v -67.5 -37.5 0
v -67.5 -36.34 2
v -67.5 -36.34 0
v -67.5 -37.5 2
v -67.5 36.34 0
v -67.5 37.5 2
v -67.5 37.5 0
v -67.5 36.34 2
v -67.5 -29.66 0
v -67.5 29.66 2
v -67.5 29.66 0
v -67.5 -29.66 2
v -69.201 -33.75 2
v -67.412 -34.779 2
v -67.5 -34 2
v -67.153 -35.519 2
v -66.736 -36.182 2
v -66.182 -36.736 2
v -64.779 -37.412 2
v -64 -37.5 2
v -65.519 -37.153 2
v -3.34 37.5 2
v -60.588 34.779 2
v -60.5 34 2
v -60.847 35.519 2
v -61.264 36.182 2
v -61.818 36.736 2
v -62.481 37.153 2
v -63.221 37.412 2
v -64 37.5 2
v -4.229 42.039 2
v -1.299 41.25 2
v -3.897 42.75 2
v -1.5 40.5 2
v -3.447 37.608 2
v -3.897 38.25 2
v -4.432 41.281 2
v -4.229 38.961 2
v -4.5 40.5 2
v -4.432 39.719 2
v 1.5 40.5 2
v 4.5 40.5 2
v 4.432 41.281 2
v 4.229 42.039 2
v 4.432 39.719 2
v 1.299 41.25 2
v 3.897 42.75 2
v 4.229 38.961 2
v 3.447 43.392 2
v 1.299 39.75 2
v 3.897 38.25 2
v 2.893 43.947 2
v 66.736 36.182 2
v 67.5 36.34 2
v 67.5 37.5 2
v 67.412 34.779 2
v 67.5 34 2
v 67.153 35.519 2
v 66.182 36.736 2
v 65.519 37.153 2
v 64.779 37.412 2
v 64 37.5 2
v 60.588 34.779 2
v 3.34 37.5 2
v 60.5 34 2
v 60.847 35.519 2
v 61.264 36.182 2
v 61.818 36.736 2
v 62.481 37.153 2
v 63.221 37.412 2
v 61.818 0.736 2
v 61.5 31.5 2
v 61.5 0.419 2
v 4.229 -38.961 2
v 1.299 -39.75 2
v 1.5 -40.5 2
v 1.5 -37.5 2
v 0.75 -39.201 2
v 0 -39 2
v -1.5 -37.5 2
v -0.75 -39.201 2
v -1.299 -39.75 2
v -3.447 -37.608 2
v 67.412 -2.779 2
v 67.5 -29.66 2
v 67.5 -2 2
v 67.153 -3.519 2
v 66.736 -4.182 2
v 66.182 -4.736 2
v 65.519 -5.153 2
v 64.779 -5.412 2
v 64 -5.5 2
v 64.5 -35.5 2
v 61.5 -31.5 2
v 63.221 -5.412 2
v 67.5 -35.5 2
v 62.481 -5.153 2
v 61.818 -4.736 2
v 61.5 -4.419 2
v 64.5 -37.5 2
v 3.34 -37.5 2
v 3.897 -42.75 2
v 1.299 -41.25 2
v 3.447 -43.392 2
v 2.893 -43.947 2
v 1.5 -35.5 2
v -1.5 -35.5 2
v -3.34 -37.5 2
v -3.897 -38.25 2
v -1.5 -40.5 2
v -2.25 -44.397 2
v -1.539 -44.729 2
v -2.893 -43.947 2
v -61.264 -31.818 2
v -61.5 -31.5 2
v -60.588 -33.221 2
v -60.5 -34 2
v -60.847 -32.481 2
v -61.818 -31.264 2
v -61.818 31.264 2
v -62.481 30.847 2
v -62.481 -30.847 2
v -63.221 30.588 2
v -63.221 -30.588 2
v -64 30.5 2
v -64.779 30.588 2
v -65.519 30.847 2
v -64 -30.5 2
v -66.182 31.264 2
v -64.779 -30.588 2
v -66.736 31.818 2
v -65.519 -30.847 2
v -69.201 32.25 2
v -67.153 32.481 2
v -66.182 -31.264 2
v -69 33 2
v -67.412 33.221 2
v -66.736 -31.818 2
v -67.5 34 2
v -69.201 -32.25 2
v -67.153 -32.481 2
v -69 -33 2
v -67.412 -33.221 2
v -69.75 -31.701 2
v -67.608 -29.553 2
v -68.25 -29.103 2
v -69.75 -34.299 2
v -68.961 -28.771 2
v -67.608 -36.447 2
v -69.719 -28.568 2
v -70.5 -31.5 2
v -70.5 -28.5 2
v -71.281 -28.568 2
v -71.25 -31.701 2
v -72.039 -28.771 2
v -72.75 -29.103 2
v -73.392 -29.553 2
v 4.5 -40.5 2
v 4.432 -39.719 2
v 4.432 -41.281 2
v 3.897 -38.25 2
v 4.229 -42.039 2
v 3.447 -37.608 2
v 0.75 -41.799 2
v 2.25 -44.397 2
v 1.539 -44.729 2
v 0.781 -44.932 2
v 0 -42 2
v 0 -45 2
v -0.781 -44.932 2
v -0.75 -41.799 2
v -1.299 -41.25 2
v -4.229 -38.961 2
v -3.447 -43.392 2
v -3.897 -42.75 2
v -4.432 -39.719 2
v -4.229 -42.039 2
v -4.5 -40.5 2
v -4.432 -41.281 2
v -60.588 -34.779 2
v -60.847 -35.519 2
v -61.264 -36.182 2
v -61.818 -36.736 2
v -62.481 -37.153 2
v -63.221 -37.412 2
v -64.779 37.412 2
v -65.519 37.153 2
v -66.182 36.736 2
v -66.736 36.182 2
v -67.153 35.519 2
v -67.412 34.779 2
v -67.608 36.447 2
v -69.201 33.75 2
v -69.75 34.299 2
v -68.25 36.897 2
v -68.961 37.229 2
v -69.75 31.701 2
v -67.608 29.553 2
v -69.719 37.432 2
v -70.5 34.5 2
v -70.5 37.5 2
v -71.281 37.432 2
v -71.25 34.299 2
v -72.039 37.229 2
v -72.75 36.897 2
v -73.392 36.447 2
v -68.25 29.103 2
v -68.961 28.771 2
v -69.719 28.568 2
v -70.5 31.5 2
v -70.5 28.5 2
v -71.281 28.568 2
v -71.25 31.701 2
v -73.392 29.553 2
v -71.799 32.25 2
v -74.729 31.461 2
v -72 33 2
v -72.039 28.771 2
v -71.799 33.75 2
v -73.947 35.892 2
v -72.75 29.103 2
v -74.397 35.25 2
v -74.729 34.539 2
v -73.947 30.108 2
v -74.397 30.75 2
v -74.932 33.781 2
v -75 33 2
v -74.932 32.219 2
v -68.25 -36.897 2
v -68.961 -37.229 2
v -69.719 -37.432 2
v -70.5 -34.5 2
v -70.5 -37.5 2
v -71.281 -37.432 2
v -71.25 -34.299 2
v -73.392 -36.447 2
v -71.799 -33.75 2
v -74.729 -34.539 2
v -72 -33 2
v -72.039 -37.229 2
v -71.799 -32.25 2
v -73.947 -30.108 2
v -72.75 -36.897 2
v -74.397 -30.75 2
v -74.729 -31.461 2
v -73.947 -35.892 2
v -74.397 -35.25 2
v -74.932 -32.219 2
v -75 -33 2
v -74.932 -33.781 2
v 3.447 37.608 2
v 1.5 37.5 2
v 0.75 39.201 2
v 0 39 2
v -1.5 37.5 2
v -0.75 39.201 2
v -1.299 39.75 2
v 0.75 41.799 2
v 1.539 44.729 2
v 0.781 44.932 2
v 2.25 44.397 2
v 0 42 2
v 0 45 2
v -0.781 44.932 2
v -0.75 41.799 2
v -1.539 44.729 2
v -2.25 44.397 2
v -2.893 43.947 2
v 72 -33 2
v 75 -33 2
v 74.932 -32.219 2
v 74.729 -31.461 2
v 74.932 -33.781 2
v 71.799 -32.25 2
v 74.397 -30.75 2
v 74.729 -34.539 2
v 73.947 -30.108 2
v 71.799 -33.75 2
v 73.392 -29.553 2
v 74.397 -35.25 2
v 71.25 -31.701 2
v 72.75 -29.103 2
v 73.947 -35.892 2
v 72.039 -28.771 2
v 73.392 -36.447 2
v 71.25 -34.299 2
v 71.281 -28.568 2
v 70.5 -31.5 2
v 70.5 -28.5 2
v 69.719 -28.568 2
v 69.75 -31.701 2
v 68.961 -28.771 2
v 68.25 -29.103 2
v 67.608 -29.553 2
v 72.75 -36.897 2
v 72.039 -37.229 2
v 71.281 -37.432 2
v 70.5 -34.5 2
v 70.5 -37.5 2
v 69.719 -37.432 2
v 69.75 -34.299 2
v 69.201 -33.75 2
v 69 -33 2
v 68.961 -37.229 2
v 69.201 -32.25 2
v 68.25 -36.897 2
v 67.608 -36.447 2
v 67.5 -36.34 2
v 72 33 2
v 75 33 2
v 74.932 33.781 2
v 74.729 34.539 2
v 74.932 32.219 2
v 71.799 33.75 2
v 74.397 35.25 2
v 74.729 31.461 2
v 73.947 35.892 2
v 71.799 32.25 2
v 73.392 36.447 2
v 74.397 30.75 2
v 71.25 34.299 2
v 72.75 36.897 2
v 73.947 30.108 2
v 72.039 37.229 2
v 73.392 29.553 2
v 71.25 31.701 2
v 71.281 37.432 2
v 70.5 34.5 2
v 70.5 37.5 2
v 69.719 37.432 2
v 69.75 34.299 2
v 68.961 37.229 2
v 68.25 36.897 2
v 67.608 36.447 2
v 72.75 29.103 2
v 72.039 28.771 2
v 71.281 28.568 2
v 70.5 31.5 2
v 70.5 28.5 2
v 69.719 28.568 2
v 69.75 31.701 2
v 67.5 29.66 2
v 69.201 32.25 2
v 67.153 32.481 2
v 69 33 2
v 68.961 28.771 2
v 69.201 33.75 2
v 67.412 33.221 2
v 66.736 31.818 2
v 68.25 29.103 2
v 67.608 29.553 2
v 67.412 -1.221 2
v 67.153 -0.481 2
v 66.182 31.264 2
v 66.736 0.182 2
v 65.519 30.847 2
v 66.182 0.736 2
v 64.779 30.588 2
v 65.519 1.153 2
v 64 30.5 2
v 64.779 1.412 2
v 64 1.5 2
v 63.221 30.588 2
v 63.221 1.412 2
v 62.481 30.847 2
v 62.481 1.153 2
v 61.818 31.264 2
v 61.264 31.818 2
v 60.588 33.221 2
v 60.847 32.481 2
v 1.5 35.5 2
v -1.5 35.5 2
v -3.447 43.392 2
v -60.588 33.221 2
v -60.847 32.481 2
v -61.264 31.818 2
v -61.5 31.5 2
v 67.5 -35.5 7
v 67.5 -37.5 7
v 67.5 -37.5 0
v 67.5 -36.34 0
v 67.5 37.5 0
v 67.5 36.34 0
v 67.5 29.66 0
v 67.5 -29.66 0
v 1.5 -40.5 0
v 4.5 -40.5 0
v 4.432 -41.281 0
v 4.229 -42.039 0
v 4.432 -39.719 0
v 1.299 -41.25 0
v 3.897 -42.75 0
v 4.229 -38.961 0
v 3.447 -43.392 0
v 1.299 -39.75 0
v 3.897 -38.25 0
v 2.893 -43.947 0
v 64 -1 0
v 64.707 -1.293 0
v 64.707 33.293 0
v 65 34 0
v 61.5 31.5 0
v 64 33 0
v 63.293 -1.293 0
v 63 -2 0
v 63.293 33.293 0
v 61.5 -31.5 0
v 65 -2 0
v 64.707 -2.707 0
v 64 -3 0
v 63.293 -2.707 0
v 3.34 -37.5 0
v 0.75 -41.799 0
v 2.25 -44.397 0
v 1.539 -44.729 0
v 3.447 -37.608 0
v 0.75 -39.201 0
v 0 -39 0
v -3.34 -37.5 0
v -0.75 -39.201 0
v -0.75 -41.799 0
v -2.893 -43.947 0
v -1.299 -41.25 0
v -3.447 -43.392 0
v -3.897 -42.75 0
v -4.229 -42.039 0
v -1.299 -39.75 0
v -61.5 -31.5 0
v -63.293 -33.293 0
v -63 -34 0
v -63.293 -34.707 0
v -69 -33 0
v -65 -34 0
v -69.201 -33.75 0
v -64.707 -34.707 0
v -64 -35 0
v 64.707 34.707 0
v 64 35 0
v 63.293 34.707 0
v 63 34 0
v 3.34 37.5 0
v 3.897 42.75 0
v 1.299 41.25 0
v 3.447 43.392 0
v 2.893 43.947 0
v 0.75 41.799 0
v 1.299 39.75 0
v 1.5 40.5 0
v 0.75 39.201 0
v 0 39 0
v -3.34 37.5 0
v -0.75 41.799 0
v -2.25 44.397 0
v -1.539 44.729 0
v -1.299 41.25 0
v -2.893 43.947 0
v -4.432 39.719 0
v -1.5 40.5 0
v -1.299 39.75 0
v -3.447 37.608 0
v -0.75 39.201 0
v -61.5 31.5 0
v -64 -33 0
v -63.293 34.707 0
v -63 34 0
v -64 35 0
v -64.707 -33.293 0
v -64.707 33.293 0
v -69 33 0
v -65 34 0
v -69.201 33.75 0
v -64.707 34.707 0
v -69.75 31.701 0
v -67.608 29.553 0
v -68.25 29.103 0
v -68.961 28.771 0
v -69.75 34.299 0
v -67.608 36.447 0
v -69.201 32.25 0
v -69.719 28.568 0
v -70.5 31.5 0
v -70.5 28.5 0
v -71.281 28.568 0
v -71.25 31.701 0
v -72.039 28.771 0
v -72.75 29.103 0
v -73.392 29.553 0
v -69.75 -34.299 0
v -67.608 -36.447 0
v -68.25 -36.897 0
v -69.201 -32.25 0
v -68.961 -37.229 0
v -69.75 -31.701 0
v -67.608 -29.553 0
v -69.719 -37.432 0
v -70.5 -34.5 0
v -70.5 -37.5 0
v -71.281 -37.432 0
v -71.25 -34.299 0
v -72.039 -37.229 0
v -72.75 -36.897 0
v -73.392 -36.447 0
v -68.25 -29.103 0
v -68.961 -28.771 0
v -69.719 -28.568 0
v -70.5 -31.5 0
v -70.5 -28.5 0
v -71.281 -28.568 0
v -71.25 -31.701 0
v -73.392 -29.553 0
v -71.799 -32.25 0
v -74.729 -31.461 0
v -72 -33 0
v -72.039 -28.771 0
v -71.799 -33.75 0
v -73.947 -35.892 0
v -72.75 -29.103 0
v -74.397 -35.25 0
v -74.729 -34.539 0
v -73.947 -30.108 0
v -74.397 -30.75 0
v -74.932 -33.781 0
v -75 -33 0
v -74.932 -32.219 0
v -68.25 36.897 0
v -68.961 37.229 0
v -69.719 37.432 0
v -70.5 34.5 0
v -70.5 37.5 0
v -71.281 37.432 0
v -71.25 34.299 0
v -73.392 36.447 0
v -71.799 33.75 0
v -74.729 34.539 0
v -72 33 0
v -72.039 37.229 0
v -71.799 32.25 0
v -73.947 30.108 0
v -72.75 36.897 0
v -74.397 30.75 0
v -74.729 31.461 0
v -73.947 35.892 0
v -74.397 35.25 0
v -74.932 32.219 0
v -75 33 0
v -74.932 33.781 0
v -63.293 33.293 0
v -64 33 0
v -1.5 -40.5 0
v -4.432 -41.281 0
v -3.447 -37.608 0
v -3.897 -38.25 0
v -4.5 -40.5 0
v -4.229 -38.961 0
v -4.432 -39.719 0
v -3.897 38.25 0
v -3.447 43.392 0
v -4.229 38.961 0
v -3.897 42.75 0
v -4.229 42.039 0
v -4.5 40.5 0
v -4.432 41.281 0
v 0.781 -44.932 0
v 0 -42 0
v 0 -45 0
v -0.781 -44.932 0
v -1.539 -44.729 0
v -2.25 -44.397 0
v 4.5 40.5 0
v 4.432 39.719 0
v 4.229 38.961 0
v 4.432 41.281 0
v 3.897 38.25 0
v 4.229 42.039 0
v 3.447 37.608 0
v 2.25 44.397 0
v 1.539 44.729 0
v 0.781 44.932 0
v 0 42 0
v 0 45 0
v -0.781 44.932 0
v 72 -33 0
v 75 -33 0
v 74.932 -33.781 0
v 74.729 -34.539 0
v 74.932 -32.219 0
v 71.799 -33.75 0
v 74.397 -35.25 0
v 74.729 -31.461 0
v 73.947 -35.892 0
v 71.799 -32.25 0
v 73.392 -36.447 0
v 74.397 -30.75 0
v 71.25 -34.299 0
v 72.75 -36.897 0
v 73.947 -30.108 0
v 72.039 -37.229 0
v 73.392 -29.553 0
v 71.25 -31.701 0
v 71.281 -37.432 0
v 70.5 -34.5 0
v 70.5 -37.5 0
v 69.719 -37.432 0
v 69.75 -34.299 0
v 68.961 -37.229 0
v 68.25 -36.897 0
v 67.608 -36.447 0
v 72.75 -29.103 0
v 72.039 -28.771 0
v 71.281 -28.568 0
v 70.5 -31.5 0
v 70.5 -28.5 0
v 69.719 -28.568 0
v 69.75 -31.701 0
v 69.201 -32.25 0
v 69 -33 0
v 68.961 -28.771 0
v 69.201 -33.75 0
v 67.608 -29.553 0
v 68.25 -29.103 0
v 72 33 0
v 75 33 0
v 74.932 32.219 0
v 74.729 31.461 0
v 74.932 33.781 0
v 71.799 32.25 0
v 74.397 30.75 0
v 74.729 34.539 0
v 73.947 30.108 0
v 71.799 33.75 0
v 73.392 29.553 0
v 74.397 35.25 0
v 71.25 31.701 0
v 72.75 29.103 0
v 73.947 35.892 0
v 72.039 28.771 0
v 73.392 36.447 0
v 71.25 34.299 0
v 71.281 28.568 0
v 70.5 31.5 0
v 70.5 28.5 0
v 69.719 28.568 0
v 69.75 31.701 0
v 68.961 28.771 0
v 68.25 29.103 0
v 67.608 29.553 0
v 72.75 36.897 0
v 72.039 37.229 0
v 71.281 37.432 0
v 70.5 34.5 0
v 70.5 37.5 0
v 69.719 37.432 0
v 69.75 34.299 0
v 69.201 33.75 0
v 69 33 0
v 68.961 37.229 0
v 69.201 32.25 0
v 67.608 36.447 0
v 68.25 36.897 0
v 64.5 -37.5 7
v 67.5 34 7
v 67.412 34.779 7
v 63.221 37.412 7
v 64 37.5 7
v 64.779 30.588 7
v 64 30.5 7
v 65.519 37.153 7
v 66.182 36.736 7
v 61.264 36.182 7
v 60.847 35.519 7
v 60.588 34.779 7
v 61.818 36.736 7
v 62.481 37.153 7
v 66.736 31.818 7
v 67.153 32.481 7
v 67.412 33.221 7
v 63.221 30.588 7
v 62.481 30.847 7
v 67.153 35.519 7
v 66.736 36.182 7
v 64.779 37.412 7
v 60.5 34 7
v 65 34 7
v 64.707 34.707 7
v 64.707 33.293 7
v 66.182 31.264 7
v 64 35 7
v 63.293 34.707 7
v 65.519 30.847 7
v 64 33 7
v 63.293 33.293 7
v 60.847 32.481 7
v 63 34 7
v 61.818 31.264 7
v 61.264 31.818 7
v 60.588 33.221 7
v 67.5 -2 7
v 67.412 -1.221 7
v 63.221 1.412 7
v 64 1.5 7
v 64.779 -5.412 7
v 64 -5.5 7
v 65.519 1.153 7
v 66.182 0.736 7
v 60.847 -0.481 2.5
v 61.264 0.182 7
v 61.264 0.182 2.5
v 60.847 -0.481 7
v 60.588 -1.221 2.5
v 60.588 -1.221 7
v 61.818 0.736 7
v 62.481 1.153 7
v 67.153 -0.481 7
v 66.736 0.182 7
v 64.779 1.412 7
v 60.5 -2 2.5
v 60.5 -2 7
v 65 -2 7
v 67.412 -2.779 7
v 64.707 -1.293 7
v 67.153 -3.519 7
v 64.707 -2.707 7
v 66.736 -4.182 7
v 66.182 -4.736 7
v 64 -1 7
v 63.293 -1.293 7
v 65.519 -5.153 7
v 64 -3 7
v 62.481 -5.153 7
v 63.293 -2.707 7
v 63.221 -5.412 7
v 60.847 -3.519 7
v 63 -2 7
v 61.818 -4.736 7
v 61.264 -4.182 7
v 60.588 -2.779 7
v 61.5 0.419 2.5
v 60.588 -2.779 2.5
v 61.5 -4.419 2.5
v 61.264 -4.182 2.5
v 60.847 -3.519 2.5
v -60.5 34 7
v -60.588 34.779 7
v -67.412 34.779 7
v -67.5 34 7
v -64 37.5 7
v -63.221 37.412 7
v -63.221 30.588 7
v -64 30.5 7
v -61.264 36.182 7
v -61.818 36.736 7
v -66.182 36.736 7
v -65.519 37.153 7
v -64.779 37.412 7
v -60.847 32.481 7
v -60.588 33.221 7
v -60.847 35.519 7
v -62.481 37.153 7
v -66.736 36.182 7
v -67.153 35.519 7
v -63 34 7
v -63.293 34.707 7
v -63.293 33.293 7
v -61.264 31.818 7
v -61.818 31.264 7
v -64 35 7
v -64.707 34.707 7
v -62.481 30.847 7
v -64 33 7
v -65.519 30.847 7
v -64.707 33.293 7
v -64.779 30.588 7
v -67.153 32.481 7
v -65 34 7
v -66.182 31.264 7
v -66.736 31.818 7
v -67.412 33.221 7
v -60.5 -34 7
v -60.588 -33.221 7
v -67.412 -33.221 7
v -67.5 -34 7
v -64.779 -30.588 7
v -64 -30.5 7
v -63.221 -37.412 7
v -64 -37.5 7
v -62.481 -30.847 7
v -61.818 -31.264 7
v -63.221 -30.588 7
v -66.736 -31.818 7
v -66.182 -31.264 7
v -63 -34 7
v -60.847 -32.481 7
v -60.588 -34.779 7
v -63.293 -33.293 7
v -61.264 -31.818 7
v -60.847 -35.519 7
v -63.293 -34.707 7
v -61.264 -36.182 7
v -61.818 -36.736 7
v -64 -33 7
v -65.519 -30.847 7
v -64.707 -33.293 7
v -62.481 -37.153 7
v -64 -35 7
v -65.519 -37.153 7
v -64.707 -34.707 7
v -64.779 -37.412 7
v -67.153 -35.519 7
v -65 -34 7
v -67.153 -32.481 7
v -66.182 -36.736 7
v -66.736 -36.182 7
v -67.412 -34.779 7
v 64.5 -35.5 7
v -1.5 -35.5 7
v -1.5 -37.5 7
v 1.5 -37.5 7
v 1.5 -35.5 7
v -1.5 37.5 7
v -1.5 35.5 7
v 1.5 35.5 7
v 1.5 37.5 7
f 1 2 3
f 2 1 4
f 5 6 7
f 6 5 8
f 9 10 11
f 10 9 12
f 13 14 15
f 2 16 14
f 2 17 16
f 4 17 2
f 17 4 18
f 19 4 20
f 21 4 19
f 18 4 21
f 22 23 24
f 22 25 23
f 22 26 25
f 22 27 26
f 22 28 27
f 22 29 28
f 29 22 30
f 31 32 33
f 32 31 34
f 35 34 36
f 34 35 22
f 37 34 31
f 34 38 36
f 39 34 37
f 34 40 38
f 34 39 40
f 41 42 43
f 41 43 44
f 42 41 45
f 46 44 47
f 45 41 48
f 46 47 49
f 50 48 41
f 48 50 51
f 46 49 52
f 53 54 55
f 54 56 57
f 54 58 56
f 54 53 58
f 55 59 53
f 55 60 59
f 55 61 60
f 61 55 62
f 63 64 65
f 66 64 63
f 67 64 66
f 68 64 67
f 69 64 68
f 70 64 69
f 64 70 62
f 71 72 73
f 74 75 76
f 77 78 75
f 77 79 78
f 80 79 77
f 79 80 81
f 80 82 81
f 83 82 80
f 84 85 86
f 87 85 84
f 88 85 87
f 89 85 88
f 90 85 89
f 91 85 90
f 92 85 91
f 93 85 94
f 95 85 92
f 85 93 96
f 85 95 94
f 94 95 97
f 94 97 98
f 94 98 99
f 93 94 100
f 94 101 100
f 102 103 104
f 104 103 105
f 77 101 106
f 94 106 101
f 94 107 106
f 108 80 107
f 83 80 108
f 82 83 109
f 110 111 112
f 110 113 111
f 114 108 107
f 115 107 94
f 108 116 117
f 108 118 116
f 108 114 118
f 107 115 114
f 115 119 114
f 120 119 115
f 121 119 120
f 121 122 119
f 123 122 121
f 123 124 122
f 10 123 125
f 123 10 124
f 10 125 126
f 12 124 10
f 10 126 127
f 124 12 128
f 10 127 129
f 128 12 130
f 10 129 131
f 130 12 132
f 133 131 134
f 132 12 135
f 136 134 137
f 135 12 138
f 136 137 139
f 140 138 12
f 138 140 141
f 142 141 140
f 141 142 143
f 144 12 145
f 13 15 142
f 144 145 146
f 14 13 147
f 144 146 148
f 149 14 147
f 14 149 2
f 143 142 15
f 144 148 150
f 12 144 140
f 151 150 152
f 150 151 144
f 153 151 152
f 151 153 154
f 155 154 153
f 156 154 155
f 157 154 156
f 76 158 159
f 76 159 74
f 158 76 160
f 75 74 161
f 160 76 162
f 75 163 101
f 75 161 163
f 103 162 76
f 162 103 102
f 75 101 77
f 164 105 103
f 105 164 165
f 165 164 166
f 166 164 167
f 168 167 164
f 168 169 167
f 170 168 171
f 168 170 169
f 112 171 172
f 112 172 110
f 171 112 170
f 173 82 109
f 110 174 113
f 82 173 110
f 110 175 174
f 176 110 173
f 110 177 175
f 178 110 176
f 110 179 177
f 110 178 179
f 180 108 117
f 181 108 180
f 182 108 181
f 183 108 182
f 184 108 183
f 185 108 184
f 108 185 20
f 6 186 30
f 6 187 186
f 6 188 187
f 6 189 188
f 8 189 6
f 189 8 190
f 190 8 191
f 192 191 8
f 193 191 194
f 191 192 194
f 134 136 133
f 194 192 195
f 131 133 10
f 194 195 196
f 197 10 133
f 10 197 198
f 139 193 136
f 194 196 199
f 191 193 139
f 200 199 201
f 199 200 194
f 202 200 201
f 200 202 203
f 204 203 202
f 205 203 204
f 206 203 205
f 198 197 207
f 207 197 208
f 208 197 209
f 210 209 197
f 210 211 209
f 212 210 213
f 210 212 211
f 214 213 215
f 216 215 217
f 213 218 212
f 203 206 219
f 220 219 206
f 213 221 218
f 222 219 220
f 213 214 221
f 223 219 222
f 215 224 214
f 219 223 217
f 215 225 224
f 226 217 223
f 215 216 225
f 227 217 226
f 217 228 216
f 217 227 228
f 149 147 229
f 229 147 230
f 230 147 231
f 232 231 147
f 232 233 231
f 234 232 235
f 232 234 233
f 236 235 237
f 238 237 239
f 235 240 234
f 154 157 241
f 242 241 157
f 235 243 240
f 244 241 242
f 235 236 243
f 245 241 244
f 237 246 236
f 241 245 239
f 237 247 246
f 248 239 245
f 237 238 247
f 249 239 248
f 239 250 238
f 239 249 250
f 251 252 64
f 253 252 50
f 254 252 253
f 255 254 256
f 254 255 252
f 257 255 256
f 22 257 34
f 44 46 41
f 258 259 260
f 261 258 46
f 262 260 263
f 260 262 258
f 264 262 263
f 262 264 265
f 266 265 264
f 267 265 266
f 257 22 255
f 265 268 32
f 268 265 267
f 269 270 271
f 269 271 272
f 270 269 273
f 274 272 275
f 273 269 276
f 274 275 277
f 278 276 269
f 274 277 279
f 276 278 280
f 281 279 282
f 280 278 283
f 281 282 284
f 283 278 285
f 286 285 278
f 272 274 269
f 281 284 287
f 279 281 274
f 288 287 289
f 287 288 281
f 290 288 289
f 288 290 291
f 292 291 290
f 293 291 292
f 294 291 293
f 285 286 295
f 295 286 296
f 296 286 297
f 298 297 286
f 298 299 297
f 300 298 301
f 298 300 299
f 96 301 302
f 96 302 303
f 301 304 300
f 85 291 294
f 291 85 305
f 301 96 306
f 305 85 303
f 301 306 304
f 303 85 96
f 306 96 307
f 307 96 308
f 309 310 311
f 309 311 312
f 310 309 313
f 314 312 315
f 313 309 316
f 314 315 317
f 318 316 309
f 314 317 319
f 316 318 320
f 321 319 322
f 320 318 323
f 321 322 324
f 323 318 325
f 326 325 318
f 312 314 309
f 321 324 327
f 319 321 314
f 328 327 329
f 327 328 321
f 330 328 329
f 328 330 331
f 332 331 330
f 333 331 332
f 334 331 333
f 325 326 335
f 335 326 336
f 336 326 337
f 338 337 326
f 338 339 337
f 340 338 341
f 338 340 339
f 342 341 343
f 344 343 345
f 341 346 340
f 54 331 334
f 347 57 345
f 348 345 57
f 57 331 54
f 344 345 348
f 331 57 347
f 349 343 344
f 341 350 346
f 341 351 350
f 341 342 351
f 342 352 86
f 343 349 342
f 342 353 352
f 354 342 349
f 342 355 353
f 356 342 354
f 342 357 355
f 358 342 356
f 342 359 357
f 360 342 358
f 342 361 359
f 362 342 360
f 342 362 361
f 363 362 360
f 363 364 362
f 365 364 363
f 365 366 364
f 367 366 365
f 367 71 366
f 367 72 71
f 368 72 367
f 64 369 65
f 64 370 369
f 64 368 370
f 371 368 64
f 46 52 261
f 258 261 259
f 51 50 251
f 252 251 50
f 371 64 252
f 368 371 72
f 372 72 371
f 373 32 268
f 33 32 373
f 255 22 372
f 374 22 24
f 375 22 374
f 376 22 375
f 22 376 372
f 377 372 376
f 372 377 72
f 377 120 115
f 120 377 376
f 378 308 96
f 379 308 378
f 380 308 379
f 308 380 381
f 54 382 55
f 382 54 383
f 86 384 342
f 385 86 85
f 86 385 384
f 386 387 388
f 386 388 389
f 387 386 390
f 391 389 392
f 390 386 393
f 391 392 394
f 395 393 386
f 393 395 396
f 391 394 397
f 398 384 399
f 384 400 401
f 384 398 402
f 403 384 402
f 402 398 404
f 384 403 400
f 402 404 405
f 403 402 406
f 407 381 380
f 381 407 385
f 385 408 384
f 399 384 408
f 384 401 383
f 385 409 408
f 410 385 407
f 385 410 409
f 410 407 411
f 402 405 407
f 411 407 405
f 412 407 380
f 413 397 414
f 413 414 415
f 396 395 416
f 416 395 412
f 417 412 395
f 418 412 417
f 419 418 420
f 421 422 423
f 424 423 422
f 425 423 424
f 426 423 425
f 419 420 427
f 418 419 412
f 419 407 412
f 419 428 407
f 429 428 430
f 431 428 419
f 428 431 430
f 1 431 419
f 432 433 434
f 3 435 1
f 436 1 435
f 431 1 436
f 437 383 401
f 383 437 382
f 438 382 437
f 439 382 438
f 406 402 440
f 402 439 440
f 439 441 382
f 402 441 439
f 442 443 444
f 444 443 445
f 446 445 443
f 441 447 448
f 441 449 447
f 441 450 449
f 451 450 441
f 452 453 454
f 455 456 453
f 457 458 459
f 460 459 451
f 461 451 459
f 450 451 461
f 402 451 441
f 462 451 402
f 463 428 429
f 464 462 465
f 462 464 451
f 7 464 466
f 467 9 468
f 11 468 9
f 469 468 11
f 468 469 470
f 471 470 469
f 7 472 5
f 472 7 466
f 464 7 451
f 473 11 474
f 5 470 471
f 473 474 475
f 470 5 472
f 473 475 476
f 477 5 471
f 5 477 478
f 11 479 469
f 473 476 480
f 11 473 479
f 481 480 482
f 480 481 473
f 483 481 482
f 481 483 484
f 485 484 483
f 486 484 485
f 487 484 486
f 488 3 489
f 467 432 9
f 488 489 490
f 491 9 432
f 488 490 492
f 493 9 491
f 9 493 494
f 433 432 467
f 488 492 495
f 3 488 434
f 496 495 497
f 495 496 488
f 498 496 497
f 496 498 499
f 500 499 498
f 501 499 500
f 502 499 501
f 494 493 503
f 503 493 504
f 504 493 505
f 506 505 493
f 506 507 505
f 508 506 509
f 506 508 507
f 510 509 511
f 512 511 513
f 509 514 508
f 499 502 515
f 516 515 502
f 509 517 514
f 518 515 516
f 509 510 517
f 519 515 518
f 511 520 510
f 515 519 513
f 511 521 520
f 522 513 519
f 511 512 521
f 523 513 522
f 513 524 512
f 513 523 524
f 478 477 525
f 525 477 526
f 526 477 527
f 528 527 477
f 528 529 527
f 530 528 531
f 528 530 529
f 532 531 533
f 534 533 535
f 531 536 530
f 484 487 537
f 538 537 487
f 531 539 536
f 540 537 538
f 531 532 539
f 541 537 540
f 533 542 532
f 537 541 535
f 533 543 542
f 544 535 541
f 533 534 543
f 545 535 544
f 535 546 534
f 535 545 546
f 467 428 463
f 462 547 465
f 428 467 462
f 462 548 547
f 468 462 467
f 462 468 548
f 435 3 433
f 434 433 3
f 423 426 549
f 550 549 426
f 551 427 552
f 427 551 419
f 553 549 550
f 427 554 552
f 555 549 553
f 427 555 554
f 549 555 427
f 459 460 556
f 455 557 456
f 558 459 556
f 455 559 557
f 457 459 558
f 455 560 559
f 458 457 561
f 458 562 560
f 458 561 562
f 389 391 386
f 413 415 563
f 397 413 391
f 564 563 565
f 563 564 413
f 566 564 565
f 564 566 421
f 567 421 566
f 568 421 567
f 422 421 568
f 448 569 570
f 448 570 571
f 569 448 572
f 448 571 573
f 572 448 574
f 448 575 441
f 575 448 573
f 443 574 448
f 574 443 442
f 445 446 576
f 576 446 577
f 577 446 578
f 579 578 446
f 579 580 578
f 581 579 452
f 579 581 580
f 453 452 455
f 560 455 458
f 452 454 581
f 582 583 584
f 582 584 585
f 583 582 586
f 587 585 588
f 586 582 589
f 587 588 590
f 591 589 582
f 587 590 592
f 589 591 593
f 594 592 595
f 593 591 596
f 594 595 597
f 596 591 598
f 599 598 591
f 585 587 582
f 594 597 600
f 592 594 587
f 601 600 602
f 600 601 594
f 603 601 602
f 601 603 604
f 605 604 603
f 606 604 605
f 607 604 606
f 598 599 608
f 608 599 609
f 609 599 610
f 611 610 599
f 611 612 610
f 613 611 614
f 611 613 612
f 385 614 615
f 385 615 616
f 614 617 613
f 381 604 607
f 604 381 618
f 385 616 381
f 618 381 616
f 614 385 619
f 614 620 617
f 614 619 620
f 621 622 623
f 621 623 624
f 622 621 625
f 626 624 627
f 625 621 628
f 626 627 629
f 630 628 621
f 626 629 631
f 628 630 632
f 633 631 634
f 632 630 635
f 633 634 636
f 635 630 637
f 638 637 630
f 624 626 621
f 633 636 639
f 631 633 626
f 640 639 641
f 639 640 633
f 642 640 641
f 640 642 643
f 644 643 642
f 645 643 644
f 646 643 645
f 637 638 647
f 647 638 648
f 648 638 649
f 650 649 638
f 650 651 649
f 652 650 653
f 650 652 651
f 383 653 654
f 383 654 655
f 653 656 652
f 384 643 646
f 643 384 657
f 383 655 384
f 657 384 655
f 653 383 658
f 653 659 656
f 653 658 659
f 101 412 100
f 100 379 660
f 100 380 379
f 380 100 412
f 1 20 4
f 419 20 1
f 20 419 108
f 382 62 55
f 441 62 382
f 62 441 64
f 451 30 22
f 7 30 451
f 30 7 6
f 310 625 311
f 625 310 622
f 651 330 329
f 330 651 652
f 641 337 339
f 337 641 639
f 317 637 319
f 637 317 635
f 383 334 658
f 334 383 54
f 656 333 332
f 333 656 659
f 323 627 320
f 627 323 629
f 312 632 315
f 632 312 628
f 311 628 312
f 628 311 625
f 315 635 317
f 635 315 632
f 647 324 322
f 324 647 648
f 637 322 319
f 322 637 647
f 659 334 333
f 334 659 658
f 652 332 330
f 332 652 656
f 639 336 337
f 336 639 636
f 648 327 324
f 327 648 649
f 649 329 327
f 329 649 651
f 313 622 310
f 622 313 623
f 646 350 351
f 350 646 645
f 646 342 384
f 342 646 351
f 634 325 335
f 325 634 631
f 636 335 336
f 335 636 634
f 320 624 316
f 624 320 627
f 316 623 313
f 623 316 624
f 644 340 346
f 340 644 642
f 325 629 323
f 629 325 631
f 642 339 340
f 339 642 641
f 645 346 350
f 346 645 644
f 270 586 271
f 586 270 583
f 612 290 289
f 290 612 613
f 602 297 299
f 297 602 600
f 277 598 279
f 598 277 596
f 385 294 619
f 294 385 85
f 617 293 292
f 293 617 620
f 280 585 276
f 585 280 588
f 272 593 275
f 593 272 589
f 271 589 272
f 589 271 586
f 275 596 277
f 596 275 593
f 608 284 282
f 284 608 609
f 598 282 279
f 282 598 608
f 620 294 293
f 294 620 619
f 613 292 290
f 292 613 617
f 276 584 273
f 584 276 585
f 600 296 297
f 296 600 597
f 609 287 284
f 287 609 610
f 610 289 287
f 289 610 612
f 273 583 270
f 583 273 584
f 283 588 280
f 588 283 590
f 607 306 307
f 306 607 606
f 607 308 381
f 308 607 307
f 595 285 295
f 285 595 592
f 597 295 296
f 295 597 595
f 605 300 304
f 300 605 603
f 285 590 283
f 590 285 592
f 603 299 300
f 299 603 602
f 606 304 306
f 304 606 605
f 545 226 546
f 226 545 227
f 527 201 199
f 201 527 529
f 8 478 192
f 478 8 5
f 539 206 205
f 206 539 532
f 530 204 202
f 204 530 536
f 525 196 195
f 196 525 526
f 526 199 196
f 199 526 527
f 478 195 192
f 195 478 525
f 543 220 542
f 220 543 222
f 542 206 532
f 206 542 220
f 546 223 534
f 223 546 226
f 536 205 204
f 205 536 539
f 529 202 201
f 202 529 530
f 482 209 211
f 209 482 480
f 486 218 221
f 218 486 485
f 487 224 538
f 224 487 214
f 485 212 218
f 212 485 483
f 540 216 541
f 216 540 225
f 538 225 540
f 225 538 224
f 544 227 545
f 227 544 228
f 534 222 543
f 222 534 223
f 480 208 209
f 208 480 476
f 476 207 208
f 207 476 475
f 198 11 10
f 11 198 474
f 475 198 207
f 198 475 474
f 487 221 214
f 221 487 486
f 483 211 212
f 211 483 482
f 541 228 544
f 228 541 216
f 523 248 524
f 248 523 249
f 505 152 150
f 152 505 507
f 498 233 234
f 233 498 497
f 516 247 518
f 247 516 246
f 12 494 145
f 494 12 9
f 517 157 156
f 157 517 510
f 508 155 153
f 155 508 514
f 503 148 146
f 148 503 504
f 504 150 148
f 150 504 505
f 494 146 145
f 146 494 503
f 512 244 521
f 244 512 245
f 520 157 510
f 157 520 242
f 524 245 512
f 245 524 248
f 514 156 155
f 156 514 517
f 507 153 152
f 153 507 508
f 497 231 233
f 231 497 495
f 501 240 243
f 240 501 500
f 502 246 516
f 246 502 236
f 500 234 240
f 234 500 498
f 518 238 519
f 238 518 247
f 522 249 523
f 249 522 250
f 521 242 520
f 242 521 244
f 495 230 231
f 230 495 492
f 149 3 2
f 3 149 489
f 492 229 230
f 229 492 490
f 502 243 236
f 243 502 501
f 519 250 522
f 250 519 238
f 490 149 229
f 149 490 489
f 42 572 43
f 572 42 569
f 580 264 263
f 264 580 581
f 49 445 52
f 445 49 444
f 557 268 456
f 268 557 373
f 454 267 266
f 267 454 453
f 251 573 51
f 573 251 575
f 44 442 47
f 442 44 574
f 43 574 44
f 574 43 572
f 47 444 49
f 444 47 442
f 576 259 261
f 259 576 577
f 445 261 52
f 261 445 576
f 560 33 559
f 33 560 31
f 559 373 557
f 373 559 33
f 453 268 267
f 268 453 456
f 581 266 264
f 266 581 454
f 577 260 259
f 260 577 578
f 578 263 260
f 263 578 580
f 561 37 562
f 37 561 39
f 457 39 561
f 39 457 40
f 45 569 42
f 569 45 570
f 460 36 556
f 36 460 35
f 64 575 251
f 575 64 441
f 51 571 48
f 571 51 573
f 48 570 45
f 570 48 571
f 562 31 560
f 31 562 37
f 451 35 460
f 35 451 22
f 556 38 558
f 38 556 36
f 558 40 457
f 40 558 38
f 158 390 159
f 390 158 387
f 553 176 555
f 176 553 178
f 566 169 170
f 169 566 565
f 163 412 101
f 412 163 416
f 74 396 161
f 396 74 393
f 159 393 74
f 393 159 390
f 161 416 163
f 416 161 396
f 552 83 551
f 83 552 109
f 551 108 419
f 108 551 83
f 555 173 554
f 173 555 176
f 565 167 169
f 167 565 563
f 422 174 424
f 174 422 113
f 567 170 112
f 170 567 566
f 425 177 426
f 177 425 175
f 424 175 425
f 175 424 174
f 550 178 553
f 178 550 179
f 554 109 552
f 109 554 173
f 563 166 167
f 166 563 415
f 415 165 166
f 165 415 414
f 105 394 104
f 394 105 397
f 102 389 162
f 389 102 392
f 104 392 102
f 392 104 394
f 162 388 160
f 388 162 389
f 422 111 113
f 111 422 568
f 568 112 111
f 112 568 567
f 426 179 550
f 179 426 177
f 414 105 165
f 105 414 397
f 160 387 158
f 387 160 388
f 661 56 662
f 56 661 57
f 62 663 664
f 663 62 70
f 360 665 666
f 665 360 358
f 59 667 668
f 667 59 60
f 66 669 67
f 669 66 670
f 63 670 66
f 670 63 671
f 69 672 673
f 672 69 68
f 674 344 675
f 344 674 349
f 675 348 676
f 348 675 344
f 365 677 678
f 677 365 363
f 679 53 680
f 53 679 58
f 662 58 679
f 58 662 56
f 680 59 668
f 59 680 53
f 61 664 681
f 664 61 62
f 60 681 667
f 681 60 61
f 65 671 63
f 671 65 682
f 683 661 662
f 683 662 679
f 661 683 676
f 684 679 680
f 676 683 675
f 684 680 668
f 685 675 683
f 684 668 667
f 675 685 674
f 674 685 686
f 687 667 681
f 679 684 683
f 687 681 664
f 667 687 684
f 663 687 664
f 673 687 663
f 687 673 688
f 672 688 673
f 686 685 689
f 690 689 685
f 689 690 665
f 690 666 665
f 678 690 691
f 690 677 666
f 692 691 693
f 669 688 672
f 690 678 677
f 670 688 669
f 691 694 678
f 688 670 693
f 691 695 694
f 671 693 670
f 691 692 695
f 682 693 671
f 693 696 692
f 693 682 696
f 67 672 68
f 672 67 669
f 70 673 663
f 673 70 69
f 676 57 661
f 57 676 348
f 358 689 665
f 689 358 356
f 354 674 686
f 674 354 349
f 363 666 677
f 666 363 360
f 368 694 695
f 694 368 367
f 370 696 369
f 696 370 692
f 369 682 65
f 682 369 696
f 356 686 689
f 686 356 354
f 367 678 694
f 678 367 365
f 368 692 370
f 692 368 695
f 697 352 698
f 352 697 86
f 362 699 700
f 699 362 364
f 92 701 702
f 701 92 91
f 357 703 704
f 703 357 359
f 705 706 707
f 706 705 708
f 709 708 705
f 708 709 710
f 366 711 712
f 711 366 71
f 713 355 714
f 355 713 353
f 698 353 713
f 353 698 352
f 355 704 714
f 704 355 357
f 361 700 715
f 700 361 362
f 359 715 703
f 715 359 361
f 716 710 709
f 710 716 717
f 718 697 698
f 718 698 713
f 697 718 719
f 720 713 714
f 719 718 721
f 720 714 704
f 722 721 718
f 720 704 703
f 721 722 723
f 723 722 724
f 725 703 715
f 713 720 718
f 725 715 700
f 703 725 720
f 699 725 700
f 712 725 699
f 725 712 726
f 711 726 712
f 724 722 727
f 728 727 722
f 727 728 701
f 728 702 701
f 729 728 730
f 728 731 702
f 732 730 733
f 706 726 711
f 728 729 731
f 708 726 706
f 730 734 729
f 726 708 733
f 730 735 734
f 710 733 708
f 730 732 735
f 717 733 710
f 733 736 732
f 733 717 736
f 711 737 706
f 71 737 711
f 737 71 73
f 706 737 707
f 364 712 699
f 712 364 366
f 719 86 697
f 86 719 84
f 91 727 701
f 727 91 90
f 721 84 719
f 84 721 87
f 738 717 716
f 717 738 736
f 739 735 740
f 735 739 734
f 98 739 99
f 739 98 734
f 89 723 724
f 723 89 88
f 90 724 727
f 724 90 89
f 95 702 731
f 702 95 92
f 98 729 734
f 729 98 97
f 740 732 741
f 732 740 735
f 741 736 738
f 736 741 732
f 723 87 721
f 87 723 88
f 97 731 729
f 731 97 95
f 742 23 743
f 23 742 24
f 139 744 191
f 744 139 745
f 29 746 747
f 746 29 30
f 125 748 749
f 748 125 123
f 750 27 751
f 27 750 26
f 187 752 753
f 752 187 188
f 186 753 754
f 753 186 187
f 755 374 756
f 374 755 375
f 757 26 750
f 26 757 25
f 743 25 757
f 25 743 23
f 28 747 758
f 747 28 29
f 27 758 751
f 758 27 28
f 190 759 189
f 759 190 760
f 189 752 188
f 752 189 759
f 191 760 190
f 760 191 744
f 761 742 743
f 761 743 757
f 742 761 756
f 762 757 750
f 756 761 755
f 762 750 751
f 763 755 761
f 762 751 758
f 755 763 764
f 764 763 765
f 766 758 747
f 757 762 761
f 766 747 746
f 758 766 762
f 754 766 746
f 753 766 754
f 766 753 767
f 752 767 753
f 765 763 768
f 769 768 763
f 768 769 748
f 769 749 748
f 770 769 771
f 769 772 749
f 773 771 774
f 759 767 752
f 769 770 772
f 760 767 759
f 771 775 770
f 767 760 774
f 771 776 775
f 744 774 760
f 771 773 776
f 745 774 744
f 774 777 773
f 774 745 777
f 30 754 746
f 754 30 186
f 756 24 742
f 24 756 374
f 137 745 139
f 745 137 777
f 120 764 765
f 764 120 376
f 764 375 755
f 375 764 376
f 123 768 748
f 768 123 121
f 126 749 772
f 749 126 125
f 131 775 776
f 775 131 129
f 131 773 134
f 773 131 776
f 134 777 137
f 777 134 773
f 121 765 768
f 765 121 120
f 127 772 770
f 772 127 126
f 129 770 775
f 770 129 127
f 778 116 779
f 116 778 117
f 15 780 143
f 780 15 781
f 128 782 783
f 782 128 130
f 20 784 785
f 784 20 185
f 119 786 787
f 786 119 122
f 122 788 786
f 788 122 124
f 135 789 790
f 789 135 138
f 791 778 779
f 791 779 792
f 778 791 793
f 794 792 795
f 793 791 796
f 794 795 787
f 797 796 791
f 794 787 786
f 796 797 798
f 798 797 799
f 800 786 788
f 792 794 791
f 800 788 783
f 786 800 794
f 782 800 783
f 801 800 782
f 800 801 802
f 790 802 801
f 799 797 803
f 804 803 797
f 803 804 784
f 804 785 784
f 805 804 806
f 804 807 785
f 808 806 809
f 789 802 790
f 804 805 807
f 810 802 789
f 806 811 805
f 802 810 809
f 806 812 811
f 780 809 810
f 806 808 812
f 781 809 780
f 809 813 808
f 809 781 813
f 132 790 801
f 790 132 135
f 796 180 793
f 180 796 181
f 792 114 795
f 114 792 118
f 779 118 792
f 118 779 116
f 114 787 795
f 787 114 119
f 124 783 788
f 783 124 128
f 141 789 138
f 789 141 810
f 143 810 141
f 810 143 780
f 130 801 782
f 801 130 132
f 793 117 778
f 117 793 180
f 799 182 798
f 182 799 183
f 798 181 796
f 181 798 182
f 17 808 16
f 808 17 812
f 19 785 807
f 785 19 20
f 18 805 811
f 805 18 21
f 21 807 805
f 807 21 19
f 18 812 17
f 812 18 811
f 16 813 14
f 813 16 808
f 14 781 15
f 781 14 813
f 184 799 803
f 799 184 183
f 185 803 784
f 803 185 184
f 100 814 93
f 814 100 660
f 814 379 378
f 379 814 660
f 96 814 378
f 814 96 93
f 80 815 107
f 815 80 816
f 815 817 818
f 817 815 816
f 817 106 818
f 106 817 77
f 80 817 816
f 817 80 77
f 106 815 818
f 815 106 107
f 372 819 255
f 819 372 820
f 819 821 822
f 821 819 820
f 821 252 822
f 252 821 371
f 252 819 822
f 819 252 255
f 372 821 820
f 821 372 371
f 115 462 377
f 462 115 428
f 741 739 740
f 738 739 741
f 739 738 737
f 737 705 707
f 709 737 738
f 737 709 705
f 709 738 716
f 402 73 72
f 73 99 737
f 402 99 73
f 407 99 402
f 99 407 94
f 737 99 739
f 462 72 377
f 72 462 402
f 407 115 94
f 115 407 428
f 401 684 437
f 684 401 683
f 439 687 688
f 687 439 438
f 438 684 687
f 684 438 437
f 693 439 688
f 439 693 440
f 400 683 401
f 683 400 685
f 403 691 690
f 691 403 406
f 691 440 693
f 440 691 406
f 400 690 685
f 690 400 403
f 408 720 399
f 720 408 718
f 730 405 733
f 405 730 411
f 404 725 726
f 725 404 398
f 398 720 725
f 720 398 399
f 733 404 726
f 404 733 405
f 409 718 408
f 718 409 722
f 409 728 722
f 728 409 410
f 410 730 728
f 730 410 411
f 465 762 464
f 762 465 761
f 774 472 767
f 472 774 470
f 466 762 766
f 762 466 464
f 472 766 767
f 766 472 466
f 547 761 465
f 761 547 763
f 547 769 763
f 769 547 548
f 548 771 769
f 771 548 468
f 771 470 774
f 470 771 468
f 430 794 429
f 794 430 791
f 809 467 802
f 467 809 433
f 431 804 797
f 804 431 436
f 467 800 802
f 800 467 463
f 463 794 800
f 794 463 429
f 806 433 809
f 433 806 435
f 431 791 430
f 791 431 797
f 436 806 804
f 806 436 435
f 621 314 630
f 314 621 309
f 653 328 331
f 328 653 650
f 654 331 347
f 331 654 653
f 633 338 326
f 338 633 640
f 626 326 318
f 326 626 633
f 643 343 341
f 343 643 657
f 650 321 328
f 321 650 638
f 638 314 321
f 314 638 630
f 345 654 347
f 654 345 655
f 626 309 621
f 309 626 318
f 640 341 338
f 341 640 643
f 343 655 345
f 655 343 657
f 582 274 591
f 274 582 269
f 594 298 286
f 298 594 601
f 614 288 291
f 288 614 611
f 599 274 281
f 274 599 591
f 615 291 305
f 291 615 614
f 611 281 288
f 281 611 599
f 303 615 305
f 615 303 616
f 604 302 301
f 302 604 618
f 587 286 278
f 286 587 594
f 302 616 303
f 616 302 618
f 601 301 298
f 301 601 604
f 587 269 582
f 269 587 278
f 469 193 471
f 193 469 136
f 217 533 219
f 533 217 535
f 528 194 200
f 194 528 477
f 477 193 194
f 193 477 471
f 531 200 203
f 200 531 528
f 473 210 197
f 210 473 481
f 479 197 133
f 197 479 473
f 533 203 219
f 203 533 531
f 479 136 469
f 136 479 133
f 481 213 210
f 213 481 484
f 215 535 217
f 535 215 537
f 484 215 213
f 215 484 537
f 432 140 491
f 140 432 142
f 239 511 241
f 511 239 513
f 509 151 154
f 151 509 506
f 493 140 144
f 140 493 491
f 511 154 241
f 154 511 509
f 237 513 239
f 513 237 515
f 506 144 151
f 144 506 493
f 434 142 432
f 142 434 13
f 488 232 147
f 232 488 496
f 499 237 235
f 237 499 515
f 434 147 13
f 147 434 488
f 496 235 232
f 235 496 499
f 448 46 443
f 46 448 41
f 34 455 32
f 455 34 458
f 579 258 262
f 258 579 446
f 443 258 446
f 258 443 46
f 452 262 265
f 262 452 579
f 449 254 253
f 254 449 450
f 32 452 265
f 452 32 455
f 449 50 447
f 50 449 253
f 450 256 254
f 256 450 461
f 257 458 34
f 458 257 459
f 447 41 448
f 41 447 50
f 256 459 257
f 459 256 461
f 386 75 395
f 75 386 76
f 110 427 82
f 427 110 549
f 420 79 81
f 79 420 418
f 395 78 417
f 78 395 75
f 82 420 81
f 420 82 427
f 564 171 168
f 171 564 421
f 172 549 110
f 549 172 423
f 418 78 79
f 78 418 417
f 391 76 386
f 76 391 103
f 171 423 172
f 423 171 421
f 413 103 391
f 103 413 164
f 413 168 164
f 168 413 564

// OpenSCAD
// file: ../../08_scadSimplifyLib/scad/primitives.scad
//px - Position X
//rx - Rotation X
//sx - Scale X
//mx - Mirror X


//yCube(szx=5, py=3, rz=30, mx=1, clr="red");
//yCyl(px=7, py=5, rb=3, clr="green");
//yPoly(p=[[-5,0],[5,0],[0,5]],szz=3);

//szx - SiZe X
module yCube(px=0, py=0, pz=0, rx=0, ry=0, rz=0, sx=1, sy=1, sz=1, mx=0, my=0, mz=0, szx=1, szy=1, szz=1, clr = "grey") {
    mirror([mx,my,mz])
    translate([px, py, pz])
    rotate([rx,ry,rz])
    scale([sx,sy,sz])
    color(clr)
        cube([szx, szy, szz], center=true);    
}//yCube

//rb - Radius Bottom, rt - Radius Top
module yCyl(px=0, py=0, pz=0, rx=0, ry=0, rz=0, sx=1, sy=1, sz=1, mx=0, my=0, mz=0, rb=1, rt=1, szz=1, clr = "grey", fn = ($preview ? 2:8) ) {
    mirror([mx,my,mz])
    translate([px, py, (pz-szz/2)])
    rotate([rx,ry,rz])
    scale([sx,sy,sz])
    color(clr)
        cylinder(szz, rb, rt, $fn=fn*((rb>rt)?rb:rt));    
}//yCyl


module yPoly(px=0, py=0, pz=0, rx=0, ry=0, rz=0, sx=1, sy=1, sz=1, mx=0, my=0, mz=0, p=[[0,0],[10,0],[0,10]], szz=1, clr = "grey") {
    mirror([mx,my,mz])
    translate([px, py, pz])
    rotate([rx,ry,rz])
    scale([sx,sy,sz])
    color(clr)
        linear_extrude(szz)
            polygon(p);
}//yCube
// main file
include <../../08_scadSimplifyLib/scad/primitives.scad>

sizeX=135;
sizeY=75;
sizeZ=2;

difference(){
    union(){
        yCube(szx=sizeX, szy=sizeY, szz=sizeZ, pz=sizeZ/2);
        
        //front/back
        yCyl(szz=2,rb=4.5, rt=4.5, px=(sizeX/2+3), py=(sizeY/2-4.5), pz=1);
        yCyl(szz=2,rb=4.5, rt=4.5, px=(sizeX/2+3), py=(-sizeY/2+4.5), pz=1);
        yCyl(szz=2,rb=4.5, rt=4.5, px=(-sizeX/2-3), py=(sizeY/2-4.5), pz=1);
        yCyl(szz=2,rb=4.5, rt=4.5, px=(-sizeX/2-3), py=(-sizeY/2+4.5), pz=1);
        //side
        yCyl(szz=2,rb=4.5, rt=4.5, px=(0), py=(sizeY/2+3), pz=1);
        yCyl(szz=2,rb=4.5, rt=4.5, px=(0), py=(-sizeY/2-3), pz=1);
        //support
        yCyl(szz=7,rb=3.5, rt=3.5, px=(sizeX/2-3.5), py=(sizeY/2-3.5), pz=3.5);
        yCyl(szz=7,rb=3.5, rt=3.5, px=(sizeX/2-3.5), py=(0-2), pz=3.5);
        yCyl(szz=7,rb=3.5, rt=3.5, px=(-sizeX/2+3.5), py=(sizeY/2-3.5), pz=3.5);
        yCyl(szz=7,rb=3.5, rt=3.5, px=(-sizeX/2+3.5), py=(-sizeY/2+3.5), pz=3.5);
        //additional support
        yCube(szx=3,szy=2,szz=7, px=(sizeX/2-1.5), py=(-sizeY/2+1.), pz=3.5);
        yCube(szx=3,szy=2,szz=7, px=0, py=(-sizeY/2+1.), pz=3.5);
        yCube(szx=3,szy=2,szz=7, px=0, py=(sizeY/2-1.), pz=3.5);
    }//union
    
    yCube(szx=sizeX-12, szy=sizeY-12, szz=(sizeZ+5), pz=-1);    
    //board holes
    yCyl(szz=20,rb=1, rt=1, px=(sizeX/2-3.5), py=(sizeY/2-3.5));
    yCyl(szz=20,rb=1, rt=1, px=(sizeX/2-3.5), py=(0-2));
    yCyl(szz=20,rb=1, rt=1, px=(-sizeX/2+3.5), py=(sizeY/2-3.5));
    yCyl(szz=20,rb=1, rt=1, px=(-sizeX/2+3.5), py=(-sizeY/2+3.5));
    
    //front/back
        yCyl(szz=4,rb=1.5, rt=1.5, px=(sizeX/2+3), py=(sizeY/2-4.5), pz=1);
        yCyl(szz=4,rb=1.5, rt=1.5, px=(sizeX/2+3), py=(-sizeY/2+4.5), pz=1);
        yCyl(szz=4,rb=1.5, rt=1.5, px=(-sizeX/2-3), py=(sizeY/2-4.5), pz=1);
        yCyl(szz=4,rb=1.5, rt=1.5, px=(-sizeX/2-3), py=(-sizeY/2+4.5), pz=1);
        //side
        yCyl(szz=4,rb=1.5, rt=1.5, px=(0), py=(sizeY/2+3), pz=1);
        yCyl(szz=4,rb=1.5, rt=1.5, px=(0), py=(-sizeY/2-3), pz=1);
}//diff

    
